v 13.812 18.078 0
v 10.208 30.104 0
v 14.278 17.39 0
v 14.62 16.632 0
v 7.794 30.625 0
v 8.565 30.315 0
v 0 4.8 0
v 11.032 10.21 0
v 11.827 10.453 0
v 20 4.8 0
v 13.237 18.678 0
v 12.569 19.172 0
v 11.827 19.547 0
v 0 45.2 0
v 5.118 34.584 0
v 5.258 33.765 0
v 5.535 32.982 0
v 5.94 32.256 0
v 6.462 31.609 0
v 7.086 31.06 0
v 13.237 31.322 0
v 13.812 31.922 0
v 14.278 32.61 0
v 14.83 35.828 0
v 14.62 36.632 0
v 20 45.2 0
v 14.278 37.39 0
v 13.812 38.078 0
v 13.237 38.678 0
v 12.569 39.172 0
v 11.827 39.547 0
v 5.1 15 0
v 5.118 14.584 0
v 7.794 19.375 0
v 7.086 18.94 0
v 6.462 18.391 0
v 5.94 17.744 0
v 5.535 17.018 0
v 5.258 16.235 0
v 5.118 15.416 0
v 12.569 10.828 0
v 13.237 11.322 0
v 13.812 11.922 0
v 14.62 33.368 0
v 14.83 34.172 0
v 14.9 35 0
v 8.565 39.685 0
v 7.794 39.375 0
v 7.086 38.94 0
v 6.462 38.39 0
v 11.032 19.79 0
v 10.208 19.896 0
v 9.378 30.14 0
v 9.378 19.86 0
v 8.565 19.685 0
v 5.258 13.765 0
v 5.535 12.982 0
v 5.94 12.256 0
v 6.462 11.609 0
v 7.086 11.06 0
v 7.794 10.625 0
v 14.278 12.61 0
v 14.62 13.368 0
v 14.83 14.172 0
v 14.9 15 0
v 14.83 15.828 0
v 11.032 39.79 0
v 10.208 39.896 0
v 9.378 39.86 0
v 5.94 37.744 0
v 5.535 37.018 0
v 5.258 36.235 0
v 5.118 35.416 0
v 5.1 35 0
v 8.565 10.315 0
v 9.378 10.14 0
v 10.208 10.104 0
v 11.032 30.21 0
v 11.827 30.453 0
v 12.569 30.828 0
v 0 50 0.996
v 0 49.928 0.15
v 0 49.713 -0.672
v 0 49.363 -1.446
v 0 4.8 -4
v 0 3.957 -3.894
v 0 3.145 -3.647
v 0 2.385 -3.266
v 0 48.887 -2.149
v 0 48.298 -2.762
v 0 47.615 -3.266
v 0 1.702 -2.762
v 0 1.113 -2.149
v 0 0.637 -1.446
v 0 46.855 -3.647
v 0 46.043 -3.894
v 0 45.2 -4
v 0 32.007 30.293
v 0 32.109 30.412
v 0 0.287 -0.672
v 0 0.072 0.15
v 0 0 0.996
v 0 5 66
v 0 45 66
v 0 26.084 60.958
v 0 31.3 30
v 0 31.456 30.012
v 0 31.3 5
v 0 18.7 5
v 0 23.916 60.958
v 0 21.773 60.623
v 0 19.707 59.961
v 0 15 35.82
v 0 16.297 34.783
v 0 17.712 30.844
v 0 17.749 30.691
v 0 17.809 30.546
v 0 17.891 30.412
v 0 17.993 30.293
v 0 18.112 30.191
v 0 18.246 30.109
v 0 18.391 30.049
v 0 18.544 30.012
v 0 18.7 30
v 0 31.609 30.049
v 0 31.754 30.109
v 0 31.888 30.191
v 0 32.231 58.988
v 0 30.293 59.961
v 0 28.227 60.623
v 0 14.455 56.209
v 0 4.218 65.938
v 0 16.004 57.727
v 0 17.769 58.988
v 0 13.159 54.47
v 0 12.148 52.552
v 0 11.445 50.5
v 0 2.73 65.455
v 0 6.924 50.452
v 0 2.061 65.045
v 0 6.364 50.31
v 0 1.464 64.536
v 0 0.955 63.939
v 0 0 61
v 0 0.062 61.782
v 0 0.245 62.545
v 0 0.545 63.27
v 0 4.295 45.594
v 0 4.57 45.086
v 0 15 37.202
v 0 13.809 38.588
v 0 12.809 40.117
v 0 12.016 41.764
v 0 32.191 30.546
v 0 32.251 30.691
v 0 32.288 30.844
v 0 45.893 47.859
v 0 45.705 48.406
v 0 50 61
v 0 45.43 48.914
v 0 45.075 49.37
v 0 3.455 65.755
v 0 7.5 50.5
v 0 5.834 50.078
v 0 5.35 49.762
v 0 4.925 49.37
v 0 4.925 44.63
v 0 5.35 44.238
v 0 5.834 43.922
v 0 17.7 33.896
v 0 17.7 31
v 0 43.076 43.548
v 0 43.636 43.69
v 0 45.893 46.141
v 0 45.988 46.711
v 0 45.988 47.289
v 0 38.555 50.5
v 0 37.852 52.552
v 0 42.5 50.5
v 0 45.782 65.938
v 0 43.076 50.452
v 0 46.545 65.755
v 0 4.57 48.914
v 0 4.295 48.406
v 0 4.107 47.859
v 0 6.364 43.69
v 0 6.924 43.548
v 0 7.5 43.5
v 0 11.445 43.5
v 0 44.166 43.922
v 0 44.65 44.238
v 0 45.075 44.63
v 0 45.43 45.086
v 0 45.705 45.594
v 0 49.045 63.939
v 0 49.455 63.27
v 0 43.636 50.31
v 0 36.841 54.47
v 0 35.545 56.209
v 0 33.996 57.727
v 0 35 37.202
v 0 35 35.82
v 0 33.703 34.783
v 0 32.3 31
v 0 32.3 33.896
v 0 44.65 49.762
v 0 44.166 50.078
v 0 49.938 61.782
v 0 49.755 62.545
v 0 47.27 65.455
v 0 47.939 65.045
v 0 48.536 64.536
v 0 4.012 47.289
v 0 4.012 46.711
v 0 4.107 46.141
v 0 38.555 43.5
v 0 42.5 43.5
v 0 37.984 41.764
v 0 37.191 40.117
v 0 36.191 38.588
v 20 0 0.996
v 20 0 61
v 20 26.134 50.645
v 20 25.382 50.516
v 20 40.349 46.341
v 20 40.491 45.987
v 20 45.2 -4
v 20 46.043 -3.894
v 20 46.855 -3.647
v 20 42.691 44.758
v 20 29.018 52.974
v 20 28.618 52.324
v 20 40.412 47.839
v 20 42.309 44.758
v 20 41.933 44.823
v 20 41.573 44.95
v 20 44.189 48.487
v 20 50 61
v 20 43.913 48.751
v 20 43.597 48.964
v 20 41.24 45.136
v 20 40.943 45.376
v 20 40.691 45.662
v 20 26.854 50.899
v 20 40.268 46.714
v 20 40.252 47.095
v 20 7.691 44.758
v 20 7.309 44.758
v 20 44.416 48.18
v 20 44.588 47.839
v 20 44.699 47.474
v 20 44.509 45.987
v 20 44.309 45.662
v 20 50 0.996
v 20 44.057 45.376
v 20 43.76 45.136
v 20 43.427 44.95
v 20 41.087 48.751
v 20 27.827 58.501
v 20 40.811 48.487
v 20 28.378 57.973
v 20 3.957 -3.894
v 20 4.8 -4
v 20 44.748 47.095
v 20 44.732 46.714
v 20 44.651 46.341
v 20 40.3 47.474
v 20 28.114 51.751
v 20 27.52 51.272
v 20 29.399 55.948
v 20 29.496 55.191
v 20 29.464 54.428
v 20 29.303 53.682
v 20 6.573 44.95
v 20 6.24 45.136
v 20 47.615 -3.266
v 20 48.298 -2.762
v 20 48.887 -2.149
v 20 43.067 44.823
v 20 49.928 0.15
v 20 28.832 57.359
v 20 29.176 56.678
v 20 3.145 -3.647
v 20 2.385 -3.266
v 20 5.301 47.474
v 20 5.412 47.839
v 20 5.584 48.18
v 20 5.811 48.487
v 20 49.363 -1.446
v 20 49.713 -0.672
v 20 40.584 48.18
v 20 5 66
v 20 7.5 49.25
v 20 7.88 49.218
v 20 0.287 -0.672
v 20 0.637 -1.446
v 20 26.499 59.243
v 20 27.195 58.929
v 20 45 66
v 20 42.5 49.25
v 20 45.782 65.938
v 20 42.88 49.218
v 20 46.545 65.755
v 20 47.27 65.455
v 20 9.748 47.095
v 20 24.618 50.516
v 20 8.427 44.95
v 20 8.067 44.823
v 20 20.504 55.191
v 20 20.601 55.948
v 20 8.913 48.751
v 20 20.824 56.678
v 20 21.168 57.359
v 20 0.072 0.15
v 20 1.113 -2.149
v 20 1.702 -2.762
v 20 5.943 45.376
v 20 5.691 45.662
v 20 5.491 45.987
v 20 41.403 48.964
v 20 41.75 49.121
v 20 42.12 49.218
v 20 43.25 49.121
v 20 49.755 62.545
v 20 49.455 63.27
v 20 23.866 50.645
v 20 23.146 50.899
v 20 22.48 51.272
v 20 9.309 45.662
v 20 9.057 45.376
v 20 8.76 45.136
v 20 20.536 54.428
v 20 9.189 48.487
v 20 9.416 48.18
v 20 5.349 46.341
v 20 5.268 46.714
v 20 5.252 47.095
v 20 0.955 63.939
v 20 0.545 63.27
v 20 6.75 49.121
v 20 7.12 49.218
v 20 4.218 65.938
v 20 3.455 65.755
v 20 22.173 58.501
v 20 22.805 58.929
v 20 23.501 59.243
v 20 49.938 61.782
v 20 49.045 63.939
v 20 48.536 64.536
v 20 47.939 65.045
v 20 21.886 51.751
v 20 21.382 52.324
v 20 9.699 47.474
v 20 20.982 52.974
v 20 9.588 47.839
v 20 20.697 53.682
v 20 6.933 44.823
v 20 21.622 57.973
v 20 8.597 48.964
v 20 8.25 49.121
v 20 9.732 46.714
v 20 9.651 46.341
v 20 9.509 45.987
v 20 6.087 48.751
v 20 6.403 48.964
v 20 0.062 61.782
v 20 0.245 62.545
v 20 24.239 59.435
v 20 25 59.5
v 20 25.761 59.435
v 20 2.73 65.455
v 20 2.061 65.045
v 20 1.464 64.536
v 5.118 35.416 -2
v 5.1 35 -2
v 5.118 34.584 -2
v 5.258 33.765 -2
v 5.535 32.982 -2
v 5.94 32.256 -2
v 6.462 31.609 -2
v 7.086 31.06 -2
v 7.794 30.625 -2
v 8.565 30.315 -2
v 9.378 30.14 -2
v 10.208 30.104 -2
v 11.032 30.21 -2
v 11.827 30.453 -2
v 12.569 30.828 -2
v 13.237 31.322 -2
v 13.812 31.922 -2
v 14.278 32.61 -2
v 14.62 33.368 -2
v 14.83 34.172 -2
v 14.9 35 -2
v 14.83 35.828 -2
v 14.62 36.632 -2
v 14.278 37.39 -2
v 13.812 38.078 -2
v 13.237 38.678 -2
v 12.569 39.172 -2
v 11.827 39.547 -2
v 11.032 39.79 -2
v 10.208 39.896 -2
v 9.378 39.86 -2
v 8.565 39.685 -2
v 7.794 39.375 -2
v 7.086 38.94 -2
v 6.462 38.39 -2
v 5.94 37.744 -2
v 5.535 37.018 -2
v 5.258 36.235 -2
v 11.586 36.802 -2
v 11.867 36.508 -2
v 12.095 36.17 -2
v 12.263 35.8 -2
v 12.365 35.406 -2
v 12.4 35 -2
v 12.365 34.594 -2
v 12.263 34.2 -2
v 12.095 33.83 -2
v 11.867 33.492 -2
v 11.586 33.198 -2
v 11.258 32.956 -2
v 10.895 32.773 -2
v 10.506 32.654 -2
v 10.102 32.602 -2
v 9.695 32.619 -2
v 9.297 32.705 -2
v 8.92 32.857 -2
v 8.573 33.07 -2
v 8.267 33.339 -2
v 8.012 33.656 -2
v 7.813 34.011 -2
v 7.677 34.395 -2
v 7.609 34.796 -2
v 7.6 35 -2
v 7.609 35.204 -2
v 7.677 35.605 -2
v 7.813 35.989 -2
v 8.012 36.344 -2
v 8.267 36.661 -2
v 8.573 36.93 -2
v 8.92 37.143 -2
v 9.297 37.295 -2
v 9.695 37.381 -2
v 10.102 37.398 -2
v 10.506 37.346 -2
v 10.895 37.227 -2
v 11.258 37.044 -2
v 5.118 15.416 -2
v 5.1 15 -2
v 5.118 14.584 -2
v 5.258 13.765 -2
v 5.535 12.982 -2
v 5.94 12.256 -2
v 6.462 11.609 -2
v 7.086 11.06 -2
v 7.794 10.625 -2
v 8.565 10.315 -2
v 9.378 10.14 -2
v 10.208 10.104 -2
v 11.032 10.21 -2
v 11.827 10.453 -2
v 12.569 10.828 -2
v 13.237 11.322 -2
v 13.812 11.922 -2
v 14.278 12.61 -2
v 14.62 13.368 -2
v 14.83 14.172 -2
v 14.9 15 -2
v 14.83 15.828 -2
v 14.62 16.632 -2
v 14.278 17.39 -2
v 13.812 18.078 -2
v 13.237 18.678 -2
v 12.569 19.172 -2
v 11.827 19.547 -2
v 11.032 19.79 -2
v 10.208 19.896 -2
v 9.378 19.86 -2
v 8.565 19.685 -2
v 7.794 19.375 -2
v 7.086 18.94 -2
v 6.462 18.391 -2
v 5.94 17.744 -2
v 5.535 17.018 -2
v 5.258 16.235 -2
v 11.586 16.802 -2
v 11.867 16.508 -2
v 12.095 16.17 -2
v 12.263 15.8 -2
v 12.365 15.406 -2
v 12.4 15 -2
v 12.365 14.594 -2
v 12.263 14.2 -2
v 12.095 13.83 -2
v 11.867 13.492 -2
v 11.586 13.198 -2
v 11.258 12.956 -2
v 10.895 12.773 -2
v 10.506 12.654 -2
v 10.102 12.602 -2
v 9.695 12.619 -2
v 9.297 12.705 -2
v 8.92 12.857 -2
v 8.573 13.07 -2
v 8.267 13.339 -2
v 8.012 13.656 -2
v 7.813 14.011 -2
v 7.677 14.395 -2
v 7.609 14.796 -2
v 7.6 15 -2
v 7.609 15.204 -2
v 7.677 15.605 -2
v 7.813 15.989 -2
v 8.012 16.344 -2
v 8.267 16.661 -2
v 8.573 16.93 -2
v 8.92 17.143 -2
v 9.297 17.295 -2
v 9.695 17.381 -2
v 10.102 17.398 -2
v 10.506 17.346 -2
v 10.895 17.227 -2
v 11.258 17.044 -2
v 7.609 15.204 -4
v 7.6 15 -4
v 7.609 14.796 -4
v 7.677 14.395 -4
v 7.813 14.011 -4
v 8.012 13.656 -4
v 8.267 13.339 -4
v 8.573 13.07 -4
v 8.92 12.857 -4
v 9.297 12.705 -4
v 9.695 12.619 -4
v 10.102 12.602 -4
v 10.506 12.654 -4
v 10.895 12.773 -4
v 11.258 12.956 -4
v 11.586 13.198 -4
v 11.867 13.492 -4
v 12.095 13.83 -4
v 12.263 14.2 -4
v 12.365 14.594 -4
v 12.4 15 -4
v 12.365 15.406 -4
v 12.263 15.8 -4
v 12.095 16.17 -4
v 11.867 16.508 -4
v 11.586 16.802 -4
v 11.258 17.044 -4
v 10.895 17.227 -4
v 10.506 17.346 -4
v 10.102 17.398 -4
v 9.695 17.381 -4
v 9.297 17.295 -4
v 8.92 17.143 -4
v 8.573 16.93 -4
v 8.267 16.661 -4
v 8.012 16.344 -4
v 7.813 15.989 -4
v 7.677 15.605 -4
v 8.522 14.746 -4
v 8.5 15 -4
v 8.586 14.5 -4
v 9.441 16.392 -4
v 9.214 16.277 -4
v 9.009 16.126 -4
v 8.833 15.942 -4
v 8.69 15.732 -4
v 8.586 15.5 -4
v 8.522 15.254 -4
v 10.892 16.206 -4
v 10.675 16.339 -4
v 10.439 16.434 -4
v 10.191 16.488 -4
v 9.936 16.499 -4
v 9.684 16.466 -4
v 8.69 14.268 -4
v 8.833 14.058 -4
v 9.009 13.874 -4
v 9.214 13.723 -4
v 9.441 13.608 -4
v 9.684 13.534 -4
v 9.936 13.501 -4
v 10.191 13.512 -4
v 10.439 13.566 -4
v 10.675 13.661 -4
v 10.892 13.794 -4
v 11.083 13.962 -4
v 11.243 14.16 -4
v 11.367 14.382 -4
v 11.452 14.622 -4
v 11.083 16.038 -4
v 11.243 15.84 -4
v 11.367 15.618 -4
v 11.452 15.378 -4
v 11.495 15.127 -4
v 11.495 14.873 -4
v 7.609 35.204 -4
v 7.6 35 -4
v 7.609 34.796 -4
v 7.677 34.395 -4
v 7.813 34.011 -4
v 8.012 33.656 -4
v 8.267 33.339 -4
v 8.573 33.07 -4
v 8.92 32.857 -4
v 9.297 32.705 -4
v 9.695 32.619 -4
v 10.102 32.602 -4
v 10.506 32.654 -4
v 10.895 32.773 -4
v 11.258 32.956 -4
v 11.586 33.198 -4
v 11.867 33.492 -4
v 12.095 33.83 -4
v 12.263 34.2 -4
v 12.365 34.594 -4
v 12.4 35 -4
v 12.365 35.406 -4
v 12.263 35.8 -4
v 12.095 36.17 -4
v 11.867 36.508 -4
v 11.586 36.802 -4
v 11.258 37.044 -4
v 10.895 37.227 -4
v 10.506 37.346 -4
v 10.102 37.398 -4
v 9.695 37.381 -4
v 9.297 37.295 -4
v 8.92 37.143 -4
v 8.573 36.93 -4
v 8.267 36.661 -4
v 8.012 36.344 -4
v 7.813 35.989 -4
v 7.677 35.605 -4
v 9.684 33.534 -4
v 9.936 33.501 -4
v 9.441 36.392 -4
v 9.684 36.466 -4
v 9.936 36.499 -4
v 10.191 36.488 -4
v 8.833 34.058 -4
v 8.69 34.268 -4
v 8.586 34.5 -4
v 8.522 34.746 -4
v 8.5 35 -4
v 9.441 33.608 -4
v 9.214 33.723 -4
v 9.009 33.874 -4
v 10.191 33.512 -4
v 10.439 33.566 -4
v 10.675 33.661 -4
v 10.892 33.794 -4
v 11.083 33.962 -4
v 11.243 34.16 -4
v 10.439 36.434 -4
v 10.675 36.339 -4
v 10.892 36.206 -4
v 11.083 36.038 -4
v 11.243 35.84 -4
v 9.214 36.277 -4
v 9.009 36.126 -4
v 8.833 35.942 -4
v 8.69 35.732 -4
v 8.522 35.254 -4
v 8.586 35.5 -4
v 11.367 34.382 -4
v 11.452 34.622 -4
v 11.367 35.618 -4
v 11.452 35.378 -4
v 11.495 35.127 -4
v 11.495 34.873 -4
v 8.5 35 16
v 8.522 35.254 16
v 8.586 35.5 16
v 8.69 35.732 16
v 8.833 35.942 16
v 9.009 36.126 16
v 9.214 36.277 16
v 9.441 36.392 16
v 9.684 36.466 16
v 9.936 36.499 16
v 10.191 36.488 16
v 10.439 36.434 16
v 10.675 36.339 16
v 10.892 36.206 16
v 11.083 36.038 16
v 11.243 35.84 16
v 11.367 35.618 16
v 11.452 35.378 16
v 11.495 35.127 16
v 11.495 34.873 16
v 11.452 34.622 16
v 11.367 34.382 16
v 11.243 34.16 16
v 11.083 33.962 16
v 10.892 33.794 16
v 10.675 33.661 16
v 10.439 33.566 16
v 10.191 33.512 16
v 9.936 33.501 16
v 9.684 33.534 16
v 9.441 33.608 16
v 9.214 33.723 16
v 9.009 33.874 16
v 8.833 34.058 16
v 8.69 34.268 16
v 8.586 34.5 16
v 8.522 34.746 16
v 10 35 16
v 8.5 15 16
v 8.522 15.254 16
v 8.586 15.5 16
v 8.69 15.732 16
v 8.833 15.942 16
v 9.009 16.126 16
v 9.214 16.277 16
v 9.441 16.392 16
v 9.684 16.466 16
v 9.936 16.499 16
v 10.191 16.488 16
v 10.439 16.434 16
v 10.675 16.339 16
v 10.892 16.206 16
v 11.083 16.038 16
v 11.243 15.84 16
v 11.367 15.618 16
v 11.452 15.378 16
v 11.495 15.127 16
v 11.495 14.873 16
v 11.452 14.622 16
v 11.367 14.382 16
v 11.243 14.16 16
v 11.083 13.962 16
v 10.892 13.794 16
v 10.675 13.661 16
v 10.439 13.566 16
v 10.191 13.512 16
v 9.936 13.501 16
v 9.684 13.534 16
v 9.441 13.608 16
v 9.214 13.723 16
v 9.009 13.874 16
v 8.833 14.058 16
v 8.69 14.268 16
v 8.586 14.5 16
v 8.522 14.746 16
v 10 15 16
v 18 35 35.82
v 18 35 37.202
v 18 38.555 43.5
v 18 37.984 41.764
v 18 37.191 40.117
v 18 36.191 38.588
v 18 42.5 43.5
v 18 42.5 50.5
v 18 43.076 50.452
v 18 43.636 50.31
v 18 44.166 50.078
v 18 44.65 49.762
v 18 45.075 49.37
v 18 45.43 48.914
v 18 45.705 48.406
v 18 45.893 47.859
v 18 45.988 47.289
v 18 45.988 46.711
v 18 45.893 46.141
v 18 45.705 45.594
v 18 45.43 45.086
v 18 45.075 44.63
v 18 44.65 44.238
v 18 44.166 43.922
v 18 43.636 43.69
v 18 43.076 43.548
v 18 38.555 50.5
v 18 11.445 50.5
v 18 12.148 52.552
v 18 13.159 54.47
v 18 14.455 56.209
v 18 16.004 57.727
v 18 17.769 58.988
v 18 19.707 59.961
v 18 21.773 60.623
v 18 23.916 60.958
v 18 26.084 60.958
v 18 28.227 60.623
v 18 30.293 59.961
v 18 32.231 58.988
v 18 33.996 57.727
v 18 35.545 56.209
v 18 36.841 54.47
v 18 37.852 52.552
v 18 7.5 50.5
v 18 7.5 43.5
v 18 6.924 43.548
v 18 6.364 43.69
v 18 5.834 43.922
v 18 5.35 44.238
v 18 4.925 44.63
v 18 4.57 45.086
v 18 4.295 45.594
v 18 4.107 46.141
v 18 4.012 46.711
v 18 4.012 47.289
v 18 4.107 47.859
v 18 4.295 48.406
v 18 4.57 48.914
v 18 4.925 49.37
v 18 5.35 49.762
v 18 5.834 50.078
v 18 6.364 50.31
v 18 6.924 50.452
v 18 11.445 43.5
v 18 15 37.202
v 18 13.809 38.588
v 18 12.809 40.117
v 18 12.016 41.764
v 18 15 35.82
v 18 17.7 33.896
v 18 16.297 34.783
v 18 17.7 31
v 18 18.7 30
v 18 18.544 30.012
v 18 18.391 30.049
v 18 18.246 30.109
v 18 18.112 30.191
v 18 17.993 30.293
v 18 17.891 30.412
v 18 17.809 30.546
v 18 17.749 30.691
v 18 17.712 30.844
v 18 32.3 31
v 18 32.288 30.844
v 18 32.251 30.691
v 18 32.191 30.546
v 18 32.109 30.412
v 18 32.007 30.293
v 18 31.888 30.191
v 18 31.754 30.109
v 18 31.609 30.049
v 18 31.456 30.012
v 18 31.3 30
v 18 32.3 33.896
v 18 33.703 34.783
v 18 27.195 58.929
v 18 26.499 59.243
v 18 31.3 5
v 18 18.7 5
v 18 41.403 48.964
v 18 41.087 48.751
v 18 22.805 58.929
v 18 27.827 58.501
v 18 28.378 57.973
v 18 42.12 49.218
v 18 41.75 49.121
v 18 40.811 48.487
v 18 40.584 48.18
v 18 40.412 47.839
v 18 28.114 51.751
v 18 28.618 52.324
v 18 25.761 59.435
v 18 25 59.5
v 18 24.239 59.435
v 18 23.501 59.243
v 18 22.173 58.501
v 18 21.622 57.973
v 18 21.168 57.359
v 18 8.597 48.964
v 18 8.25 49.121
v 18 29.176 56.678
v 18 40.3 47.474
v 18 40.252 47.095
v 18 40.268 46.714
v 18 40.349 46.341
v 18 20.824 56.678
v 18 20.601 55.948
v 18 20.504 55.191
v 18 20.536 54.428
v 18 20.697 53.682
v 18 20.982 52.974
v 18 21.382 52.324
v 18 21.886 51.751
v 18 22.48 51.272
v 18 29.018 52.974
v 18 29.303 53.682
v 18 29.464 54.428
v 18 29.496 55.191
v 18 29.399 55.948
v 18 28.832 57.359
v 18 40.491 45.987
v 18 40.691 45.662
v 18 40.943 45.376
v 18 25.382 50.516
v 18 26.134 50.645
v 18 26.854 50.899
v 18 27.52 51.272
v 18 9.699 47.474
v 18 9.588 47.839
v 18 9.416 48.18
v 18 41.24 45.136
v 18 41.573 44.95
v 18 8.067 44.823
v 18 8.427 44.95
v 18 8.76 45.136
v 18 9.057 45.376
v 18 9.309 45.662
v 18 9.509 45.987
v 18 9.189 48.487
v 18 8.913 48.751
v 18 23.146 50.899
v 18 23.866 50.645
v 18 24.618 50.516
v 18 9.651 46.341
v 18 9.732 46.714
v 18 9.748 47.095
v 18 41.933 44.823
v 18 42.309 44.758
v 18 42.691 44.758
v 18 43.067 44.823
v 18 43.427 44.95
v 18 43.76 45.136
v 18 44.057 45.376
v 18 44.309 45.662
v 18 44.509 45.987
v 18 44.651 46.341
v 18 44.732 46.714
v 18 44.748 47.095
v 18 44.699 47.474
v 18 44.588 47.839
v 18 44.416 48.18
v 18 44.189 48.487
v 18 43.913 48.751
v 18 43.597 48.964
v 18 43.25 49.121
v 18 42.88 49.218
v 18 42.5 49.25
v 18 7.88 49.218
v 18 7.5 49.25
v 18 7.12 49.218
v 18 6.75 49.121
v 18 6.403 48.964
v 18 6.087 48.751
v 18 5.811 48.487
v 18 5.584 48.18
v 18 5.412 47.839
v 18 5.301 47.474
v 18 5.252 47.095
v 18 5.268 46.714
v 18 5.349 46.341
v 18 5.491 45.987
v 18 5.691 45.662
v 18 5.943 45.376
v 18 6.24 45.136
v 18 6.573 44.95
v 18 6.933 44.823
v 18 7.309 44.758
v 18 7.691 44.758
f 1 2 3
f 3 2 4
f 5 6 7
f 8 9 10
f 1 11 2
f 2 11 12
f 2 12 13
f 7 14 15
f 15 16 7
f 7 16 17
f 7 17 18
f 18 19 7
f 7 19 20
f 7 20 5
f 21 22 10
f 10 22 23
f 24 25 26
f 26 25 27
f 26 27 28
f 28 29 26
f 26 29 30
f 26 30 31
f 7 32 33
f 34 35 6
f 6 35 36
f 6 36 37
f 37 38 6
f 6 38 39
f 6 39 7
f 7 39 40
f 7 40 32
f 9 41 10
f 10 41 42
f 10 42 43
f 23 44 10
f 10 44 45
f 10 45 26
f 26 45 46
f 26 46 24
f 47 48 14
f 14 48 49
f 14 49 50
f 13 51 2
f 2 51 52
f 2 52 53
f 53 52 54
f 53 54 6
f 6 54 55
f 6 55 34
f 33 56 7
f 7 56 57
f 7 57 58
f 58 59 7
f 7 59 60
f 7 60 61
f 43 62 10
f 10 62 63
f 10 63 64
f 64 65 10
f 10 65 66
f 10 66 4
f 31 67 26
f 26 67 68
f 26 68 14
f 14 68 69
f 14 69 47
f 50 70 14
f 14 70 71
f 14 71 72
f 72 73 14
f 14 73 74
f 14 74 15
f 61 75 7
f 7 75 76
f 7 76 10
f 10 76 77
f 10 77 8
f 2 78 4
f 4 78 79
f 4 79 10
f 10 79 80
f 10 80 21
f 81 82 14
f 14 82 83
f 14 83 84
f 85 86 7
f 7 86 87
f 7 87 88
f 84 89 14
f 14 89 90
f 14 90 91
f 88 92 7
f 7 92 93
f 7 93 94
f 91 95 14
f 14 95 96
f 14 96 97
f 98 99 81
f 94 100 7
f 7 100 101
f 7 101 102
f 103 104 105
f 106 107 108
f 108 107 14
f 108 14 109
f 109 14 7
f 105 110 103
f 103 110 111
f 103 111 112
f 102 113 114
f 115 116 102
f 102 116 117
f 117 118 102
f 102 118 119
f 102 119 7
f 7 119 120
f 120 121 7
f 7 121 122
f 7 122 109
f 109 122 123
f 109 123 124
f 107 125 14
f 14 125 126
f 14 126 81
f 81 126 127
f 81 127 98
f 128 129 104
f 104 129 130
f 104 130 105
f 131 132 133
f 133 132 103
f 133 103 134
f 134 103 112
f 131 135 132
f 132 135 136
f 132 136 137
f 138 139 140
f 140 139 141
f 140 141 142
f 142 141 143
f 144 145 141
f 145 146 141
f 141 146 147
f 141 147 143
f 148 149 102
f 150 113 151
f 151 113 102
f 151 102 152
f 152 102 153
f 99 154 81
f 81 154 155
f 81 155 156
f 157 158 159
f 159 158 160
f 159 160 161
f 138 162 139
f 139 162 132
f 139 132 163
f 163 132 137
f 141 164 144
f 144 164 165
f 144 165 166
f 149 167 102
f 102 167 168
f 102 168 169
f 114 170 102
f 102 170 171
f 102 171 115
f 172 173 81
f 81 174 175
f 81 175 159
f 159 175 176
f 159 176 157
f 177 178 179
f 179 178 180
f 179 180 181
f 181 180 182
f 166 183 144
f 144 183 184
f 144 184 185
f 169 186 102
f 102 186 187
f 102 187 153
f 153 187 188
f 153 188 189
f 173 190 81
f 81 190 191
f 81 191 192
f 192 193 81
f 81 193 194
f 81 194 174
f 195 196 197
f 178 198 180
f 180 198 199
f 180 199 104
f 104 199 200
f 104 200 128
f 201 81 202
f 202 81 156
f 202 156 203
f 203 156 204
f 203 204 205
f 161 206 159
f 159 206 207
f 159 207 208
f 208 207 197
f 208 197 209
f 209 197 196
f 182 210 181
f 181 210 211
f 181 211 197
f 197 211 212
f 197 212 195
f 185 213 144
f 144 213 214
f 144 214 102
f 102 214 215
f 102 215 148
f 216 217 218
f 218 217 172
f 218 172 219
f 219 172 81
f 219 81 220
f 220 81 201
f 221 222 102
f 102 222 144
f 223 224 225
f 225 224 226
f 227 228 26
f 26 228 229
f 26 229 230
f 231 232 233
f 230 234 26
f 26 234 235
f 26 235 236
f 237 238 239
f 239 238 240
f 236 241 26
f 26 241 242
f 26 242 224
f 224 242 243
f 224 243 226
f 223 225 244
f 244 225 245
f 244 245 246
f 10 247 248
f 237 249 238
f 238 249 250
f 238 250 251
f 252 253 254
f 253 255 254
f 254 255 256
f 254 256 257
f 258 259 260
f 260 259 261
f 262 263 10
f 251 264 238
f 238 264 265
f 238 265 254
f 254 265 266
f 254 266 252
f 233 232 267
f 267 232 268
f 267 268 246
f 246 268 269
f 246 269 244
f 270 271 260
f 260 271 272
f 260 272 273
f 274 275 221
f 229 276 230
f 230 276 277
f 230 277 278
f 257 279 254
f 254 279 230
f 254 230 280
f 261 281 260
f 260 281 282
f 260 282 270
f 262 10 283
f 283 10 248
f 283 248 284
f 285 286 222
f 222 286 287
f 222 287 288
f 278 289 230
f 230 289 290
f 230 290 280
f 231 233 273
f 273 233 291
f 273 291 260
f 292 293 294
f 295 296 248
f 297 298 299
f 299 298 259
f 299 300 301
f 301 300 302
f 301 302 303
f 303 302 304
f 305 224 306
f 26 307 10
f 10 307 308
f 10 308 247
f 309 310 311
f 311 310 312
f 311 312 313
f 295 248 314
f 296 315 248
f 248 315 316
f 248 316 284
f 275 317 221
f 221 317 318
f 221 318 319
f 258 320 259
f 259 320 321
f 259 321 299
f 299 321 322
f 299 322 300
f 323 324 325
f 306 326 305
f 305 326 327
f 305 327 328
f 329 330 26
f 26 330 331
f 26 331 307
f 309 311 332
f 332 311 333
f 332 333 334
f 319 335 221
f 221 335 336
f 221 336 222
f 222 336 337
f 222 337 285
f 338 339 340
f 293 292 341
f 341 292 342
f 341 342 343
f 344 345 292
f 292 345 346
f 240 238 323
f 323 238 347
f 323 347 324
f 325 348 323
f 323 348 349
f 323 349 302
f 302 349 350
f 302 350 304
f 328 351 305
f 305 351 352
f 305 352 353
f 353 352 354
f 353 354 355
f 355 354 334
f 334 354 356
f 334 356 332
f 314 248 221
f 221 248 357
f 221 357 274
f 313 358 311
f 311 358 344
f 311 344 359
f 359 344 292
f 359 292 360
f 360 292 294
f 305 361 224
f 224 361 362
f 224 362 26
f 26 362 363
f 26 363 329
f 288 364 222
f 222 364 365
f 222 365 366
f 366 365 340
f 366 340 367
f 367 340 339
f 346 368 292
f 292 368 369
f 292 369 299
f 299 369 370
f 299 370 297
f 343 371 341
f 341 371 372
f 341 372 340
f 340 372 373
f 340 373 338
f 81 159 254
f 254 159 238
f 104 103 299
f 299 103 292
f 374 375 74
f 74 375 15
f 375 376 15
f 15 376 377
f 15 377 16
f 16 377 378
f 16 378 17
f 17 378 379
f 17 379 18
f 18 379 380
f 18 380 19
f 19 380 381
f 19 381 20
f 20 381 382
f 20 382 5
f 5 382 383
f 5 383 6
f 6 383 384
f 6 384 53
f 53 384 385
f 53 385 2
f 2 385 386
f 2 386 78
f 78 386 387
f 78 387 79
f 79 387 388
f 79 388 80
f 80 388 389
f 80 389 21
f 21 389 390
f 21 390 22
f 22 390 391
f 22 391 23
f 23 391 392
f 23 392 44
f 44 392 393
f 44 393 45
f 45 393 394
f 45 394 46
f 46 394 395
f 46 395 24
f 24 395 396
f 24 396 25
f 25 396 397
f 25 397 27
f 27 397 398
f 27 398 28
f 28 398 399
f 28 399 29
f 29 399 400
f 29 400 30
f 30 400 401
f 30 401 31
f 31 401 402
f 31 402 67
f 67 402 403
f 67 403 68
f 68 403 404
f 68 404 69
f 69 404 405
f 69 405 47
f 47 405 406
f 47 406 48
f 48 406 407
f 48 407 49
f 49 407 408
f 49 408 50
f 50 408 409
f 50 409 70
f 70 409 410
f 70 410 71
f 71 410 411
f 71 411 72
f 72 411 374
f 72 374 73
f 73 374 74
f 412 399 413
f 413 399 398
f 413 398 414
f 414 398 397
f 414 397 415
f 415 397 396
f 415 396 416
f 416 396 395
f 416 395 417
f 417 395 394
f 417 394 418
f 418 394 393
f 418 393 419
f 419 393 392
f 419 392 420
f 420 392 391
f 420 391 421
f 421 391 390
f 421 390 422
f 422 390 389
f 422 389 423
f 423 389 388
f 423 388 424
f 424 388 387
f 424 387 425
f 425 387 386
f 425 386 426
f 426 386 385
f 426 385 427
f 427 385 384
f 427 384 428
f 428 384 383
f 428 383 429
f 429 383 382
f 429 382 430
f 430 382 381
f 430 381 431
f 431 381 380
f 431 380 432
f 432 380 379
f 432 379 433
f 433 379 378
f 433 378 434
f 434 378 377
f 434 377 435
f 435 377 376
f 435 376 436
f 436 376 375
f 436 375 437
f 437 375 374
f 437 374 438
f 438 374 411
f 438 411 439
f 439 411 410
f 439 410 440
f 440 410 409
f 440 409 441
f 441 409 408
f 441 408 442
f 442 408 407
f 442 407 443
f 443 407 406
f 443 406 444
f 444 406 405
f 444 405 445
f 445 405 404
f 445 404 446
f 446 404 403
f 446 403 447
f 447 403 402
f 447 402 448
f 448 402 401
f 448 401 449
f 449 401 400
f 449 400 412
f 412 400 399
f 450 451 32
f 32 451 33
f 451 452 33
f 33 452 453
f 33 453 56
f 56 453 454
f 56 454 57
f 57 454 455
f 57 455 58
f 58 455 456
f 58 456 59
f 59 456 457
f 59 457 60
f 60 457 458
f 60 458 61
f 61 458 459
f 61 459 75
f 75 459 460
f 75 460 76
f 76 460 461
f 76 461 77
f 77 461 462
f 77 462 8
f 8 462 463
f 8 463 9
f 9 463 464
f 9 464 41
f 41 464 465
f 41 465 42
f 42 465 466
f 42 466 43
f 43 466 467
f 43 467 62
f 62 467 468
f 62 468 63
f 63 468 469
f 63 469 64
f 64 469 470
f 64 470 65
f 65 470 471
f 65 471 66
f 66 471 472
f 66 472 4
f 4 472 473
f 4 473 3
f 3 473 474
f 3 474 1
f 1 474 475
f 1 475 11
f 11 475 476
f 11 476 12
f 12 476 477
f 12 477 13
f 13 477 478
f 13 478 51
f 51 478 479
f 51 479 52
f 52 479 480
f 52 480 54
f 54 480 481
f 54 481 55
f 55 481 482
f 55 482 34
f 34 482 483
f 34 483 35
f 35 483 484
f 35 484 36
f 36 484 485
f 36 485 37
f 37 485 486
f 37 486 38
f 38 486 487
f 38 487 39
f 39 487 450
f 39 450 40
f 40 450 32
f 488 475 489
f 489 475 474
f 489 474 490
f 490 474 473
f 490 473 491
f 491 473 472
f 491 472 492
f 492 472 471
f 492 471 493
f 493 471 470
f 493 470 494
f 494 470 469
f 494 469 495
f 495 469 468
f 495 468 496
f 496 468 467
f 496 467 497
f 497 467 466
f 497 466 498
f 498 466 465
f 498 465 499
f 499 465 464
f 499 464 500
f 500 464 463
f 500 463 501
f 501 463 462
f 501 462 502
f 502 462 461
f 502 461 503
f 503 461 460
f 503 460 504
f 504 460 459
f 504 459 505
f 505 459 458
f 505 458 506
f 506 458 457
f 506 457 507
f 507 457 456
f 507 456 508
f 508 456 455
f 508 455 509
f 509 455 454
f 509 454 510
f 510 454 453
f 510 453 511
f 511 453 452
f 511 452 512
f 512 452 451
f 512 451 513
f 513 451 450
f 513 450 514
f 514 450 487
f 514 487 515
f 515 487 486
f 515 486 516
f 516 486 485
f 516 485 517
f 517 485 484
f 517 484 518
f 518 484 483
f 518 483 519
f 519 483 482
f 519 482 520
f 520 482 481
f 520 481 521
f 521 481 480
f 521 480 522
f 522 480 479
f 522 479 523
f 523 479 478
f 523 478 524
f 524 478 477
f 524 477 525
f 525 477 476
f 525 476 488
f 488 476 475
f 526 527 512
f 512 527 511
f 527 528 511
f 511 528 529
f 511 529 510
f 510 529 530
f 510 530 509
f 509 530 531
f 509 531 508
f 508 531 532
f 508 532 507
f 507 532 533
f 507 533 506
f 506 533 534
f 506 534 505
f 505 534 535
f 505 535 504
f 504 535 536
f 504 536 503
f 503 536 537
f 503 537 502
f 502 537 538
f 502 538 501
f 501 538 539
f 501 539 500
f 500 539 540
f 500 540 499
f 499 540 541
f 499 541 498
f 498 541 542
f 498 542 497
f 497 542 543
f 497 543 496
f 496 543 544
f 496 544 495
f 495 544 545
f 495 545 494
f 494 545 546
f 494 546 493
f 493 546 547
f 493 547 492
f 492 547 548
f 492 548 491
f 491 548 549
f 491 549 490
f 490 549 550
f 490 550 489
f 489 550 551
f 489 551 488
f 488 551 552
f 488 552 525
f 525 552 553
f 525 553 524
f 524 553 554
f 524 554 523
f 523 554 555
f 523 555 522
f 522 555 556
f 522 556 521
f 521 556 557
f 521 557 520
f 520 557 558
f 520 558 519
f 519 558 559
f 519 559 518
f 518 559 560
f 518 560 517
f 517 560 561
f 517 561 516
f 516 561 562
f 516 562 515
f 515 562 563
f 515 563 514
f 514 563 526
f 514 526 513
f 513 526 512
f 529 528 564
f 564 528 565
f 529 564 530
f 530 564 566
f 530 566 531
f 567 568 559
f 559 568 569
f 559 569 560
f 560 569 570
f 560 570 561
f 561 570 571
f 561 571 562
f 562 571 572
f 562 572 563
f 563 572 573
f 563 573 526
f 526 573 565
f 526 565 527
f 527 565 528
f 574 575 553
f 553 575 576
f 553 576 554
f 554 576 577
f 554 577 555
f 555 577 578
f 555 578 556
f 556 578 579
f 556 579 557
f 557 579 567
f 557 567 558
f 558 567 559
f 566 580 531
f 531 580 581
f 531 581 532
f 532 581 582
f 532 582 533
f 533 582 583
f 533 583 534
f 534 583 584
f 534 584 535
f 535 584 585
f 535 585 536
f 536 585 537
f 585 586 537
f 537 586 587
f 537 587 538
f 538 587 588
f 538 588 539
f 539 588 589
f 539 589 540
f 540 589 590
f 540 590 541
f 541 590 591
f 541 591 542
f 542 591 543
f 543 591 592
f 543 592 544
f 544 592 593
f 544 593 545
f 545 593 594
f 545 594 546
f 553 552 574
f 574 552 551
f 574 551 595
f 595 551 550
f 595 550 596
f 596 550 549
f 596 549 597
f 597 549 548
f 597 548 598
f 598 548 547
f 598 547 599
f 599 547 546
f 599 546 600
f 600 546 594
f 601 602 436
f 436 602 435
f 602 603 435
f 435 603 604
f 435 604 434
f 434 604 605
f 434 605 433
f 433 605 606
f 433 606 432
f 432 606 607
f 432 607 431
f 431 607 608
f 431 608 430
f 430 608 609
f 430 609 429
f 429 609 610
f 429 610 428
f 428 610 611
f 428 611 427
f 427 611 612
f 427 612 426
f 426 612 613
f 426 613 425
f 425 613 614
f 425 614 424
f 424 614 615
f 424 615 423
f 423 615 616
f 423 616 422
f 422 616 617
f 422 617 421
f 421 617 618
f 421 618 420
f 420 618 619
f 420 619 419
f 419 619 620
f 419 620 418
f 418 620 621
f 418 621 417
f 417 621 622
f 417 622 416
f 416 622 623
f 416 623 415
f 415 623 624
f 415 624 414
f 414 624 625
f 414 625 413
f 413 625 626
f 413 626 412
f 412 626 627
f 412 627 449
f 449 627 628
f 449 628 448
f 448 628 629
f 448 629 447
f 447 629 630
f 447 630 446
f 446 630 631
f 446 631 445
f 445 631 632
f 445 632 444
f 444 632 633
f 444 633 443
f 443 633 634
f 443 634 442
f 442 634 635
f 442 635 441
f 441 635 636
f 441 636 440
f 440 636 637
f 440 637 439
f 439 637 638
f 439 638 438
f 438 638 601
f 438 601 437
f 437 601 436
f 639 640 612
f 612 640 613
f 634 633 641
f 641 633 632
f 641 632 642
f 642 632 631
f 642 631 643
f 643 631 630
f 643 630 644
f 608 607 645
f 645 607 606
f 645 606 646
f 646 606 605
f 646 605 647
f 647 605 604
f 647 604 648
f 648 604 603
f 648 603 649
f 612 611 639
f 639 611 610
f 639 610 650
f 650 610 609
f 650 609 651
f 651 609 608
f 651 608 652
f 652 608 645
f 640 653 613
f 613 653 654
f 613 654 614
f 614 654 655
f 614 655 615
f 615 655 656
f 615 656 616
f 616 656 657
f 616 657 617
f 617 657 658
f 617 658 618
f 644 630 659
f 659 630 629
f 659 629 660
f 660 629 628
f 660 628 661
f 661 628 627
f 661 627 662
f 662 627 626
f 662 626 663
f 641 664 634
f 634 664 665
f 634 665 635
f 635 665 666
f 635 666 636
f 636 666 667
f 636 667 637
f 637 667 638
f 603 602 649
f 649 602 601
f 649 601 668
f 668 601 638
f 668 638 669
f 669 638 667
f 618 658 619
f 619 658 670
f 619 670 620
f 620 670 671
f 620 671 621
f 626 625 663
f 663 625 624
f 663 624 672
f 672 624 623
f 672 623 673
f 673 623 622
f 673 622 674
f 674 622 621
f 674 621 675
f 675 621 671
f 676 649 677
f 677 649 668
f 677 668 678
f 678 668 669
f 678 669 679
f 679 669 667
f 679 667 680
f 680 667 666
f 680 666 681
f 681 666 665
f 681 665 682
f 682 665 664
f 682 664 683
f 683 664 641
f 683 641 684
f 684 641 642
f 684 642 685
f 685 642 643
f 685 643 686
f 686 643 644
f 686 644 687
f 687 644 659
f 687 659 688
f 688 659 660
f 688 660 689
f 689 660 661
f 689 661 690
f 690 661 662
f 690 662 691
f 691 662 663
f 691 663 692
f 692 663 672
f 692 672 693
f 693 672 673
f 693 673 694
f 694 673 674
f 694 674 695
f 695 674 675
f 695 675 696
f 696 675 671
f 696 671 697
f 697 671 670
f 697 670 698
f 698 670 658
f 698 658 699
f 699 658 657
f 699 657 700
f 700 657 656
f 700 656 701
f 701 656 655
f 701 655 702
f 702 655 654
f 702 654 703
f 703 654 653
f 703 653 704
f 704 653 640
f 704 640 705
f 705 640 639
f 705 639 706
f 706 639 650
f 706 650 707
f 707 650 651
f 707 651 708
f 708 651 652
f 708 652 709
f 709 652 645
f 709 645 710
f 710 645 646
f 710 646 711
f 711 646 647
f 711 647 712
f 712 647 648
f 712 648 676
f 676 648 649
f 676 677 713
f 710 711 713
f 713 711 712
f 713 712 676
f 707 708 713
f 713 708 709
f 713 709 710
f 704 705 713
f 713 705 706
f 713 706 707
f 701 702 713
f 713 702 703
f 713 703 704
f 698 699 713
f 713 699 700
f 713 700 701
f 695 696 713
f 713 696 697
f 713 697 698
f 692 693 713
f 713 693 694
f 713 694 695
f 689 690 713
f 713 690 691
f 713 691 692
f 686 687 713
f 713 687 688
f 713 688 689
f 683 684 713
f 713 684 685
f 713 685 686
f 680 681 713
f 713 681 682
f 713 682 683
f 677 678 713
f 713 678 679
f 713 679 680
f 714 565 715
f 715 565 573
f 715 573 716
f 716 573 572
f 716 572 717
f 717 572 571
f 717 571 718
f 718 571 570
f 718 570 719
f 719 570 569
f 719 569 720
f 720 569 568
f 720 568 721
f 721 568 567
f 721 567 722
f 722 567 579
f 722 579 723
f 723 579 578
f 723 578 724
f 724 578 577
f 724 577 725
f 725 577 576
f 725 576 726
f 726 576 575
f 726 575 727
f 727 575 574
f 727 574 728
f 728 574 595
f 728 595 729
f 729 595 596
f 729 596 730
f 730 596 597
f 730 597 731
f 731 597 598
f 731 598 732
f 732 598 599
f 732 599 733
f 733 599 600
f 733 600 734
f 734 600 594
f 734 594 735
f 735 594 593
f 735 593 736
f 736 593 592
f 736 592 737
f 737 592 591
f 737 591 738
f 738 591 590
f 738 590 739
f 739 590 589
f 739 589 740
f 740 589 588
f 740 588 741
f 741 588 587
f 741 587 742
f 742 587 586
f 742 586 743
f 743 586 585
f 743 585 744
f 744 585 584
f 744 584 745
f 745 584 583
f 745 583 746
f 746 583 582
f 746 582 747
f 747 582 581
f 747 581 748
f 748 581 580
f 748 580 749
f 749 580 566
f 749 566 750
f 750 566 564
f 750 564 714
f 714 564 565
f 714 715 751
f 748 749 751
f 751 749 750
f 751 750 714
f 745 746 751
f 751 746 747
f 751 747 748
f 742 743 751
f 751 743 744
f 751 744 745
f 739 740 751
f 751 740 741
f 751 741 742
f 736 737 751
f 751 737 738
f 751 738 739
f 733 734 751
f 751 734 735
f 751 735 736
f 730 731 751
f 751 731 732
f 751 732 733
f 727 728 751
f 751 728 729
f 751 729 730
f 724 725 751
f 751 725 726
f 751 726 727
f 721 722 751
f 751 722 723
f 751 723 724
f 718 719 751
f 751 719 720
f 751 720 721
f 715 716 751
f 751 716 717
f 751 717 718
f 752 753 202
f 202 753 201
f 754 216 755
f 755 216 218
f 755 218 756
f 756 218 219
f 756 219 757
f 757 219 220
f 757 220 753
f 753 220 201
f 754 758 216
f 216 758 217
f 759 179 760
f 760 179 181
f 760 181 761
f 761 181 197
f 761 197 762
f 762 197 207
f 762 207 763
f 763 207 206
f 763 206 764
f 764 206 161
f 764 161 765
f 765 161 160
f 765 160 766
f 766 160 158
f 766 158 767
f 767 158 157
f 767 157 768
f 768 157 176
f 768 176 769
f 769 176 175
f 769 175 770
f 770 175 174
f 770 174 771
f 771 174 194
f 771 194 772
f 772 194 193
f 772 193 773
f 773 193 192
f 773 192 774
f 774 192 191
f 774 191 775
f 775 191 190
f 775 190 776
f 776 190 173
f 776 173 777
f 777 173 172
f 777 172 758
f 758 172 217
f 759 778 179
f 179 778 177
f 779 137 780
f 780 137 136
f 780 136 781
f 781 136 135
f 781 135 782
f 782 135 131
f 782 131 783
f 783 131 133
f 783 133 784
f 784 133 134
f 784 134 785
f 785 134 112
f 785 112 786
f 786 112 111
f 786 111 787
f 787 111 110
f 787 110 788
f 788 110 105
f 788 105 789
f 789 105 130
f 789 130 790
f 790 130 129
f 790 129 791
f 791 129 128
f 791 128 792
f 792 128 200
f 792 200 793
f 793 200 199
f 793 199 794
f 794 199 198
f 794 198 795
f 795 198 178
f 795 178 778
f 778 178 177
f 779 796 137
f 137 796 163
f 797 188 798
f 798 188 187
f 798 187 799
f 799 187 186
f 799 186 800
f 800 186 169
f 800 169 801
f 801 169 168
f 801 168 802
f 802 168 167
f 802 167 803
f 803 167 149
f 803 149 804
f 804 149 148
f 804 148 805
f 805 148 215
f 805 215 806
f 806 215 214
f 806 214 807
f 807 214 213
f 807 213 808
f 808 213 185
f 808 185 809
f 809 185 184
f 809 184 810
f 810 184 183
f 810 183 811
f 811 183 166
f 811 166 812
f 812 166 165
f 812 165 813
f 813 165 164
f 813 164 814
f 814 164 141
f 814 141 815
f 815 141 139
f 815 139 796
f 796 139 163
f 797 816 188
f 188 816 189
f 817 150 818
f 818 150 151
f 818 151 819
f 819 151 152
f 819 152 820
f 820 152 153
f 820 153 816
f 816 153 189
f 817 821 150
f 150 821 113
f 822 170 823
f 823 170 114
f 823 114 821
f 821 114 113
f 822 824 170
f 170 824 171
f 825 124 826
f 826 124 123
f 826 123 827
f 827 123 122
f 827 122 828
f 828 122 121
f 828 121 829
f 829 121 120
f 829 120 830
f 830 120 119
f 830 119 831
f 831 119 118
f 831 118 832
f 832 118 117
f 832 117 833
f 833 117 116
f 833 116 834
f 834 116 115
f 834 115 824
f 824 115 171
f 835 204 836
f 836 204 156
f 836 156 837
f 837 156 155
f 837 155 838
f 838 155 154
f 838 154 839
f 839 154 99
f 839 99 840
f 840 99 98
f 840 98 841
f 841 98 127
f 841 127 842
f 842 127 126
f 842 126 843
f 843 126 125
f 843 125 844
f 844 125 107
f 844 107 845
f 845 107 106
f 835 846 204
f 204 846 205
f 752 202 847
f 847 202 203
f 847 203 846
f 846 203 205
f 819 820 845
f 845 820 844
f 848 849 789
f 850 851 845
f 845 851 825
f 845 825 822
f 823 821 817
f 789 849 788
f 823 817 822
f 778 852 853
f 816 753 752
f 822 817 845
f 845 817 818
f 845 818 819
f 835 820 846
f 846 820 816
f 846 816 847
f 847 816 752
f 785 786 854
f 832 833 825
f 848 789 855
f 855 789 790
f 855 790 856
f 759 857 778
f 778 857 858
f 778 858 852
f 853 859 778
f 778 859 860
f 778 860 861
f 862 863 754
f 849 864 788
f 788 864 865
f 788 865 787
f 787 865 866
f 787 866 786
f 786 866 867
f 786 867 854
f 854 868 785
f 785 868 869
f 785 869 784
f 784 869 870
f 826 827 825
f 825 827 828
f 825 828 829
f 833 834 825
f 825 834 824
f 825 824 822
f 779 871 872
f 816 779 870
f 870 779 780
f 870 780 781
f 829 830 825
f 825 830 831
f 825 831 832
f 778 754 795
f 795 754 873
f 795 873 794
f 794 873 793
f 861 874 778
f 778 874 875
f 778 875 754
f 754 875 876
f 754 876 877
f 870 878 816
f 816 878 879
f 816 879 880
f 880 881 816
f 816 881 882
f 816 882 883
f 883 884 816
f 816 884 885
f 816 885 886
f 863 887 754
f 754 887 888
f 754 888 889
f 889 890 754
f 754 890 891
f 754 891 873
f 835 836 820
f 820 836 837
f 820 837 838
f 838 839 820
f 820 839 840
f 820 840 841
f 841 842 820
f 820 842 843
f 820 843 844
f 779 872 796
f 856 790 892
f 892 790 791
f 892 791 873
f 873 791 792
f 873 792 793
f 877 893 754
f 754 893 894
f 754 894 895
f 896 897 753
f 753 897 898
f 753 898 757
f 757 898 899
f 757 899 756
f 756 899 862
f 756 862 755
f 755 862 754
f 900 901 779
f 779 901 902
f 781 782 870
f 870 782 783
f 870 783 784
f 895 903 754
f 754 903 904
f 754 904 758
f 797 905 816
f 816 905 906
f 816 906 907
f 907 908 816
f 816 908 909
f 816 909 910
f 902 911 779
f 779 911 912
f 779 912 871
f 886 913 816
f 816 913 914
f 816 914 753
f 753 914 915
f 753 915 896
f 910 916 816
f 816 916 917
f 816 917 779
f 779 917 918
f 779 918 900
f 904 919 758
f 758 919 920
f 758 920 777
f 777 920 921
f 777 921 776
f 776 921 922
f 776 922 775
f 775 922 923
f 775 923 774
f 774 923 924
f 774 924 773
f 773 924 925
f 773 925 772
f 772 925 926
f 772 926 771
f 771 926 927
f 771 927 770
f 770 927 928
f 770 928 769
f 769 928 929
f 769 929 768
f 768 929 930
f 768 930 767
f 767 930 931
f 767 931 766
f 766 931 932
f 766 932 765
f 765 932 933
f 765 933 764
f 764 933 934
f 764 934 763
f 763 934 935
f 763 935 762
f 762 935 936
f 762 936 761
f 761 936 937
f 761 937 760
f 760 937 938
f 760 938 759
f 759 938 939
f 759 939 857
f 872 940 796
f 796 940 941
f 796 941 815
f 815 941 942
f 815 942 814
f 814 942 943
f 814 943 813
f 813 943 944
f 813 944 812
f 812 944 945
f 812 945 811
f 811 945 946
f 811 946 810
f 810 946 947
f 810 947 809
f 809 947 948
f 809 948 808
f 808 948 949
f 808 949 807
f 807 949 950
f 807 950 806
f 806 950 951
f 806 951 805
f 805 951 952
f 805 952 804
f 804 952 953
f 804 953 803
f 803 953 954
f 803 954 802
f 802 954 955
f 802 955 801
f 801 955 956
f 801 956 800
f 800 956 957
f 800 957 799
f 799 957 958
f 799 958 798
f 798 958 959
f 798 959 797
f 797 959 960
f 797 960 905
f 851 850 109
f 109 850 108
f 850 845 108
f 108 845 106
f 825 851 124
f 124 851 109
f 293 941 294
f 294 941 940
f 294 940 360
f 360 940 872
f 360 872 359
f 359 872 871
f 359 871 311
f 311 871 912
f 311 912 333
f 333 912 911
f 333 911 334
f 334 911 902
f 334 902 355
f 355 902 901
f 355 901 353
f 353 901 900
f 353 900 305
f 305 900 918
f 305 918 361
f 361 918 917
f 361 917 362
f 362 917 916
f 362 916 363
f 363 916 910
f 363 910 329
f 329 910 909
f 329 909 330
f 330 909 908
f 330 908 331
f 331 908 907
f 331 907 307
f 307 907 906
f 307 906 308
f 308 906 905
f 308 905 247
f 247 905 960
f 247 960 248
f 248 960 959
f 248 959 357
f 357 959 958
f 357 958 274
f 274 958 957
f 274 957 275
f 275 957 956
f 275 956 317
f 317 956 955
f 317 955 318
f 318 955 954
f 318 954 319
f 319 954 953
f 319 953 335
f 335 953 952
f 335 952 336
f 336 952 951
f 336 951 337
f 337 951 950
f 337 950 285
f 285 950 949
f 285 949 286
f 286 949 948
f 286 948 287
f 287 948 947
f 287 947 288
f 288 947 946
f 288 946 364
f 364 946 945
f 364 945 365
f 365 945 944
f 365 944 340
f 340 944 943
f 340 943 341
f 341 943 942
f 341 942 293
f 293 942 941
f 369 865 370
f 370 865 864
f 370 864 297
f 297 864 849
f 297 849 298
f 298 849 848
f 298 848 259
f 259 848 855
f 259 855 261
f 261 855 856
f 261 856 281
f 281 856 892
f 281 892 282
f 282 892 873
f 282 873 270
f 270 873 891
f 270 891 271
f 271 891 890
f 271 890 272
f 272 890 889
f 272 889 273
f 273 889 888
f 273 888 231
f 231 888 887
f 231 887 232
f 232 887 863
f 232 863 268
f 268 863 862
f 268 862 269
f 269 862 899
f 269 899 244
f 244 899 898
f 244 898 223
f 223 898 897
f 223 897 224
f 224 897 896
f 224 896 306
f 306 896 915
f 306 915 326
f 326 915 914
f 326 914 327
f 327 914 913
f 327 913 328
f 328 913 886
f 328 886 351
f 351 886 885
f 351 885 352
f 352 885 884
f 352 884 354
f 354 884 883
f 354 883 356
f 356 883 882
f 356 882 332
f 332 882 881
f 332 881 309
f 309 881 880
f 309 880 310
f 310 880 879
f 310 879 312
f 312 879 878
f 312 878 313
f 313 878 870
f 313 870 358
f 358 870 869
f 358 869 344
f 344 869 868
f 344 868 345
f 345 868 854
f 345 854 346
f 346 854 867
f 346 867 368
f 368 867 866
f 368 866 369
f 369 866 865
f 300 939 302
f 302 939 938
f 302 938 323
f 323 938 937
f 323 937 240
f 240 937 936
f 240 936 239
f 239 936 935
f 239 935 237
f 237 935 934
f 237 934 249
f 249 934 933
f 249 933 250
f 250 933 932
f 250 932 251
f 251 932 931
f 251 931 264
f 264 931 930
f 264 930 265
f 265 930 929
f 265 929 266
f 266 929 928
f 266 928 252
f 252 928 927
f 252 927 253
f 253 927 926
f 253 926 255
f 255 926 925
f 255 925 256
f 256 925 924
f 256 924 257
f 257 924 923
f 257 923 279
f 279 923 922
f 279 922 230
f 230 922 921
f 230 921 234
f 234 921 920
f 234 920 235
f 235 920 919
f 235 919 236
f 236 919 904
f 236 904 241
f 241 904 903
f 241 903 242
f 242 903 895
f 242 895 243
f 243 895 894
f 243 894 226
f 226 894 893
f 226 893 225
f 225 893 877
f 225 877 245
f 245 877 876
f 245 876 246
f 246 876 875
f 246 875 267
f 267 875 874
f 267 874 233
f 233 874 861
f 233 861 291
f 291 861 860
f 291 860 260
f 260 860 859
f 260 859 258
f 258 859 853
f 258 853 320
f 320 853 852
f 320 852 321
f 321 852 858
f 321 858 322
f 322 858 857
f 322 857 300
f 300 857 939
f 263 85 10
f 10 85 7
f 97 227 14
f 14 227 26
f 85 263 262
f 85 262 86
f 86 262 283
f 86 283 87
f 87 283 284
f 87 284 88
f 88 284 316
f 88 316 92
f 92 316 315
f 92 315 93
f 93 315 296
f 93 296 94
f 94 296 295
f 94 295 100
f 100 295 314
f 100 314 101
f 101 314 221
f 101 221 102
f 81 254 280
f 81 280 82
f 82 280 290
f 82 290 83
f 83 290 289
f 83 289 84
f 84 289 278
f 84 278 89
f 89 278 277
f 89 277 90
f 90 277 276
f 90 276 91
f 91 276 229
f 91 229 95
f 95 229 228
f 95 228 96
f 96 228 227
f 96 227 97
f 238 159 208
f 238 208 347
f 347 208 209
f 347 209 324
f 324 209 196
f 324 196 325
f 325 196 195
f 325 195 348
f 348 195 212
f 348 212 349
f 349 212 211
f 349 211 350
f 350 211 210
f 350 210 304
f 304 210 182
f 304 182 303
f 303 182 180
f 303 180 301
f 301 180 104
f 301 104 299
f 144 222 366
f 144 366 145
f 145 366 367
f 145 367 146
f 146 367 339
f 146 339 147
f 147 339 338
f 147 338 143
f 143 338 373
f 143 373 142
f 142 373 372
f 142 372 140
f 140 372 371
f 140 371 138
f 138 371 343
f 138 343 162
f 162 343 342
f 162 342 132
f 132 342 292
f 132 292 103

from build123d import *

# Parameters (mm, degrees)
SKETCH1_W           = 20
SKETCH1_H           = 50
BOSS_EXTRUDE1_DEPTH = 66
SKETCH2_R           = 4.9
BOSS_EXTRUDE2_DEPTH = 2
SKETCH3_R           = 2.4
BOSS_EXTRUDE3_DEPTH = 2
SKETCH4_R           = 1.5
CUT_EXTRUDE1_DEPTH  = 20
CUT_EXTRUDE2_START  = -18
CUT_EXTRUDE2_DEPTH  = 18
CUT_EXTRUDE3_REACH  = 86.735
SKETCH8_W           = 20
SKETCH8_H           = 4.8
BOSS_EXTRUDE4_DEPTH = 4
FILLET1_R           = 5


# Read off the part's stored shape, not the designer's step: Cut-Extrude2
with BuildPart() as part:
    # Sketch1 → Boss-Extrude1 (new body)
    with BuildSketch(Plane.XY):
        with Locations((10, 25)):
            Rectangle(SKETCH1_W, SKETCH1_H)
    extrude(amount=BOSS_EXTRUDE1_DEPTH)

    # Sketch2 → Boss-Extrude2 (add)
    with BuildSketch(Plane(origin=(0, 0, 0), x_dir=(-1, 0, 0), z_dir=(0, 0, -1))):
        with Locations((-10, 35)):
            Circle(SKETCH2_R)
        with Locations((-10, 15)):
            Circle(SKETCH2_R)
    extrude(amount=BOSS_EXTRUDE2_DEPTH)

    # Sketch3 → Boss-Extrude3 (add)
    with BuildSketch(Plane(origin=(0, 0, -2), x_dir=(-1, 0, 0), z_dir=(0, 0, -1))):
        with Locations((-10, 15)):
            Circle(SKETCH3_R)
        with Locations((-10, 35)):
            Circle(SKETCH3_R)
    extrude(amount=BOSS_EXTRUDE3_DEPTH)

    # Sketch4 → Cut-Extrude1 (cut)
    with BuildSketch(Plane(origin=(0, 0, -4), x_dir=(-1, 0, 0), z_dir=(0, 0, -1))):
        with Locations((-10, 15)):
            Circle(SKETCH4_R)
        with Locations((-10, 35)):
            Circle(SKETCH4_R)
    extrude(amount=-CUT_EXTRUDE1_DEPTH, mode=Mode.SUBTRACT)

    # Cut-Extrude2 outline → Cut-Extrude2 (cut)
    with BuildSketch(Plane.ZY.offset(CUT_EXTRUDE2_START)):
        with BuildLine():
            ThreePointArc((43.5, 38.555441712), (40.117469968, 37.191422409), (37.202041029, 35))
            Line((37.202041029, 35), (35.819660113, 35))
            ThreePointArc((35.819660113, 35), (34.783103517, 33.703300542), (33.896183762, 32.3))
            Line((33.896183762, 32.3), (31, 32.3))
            ThreePointArc((31, 32.3), (30.292893219, 32.007106781), (30, 31.3))
            Line((30, 31.3), (5, 31.3))
            Line((5, 31.3), (5, 18.7))
            Line((5, 18.7), (30, 18.7))
            ThreePointArc((30, 18.7), (30.292893219, 17.992893219), (31, 17.7))
            Line((31, 17.7), (33.896183762, 17.7))
            ThreePointArc((33.896183762, 17.7), (34.783103517, 16.296699458), (35.819660113, 15))
            Line((35.819660113, 15), (37.202041029, 15))
            ThreePointArc((37.202041029, 15), (40.117469968, 12.808577591), (43.5, 11.444558288))
            Line((43.5, 11.444558288), (43.5, 7.5))
            ThreePointArc((43.5, 7.5), (47, 4), (50.5, 7.5))
            Line((50.5, 7.5), (50.5, 11.444558288))
            ThreePointArc((50.5, 11.444558288), (61, 25), (50.5, 38.555441712))
            Line((50.5, 38.555441712), (50.5, 42.5))
            ThreePointArc((50.5, 42.5), (47, 46), (43.5, 42.5))
            Line((43.5, 42.5), (43.5, 38.555441712))
        make_face()
    extrude(amount=CUT_EXTRUDE2_DEPTH, mode=Mode.SUBTRACT)

    # Sketch7 → Cut-Extrude3 (cut, up to next)
    with BuildSketch(Plane.ZY.offset(-18), mode=Mode.PRIVATE) as cut_extrude3_sk1:
        with BuildLine():
            ThreePointArc((47, 40.25), (49.25, 42.5), (47, 44.75))
            ThreePointArc((47, 44.75), (44.75, 42.5), (47, 40.25))
        make_face()
    cut_extrude3_tool1 = extrude(cut_extrude3_sk1.sketch, amount=-CUT_EXTRUDE3_REACH, mode=Mode.PRIVATE) & part.part
    # Sketch7 → Cut-Extrude3 (cut, up to next)
    with BuildSketch(Plane.ZY.offset(-18), mode=Mode.PRIVATE) as cut_extrude3_sk2:
        with BuildLine():
            ThreePointArc((55, 20.5), (59.5, 25), (55, 29.5))
            ThreePointArc((55, 29.5), (50.5, 25), (55, 20.5))
        make_face()
    cut_extrude3_tool2 = extrude(cut_extrude3_sk2.sketch, amount=-CUT_EXTRUDE3_REACH, mode=Mode.PRIVATE) & part.part
    # Sketch7 → Cut-Extrude3 (cut, up to next)
    with BuildSketch(Plane.ZY.offset(-18), mode=Mode.PRIVATE) as cut_extrude3_sk3:
        with BuildLine():
            ThreePointArc((47, 5.25), (49.25, 7.5), (47, 9.75))
            ThreePointArc((47, 9.75), (44.75, 7.5), (47, 5.25))
        make_face()
    cut_extrude3_tool3 = extrude(cut_extrude3_sk3.sketch, amount=-CUT_EXTRUDE3_REACH, mode=Mode.PRIVATE) & part.part
    add(cut_extrude3_tool1.solids().sort_by_distance((18, 42.5, 47))[0], mode=Mode.SUBTRACT)
    add(cut_extrude3_tool2.solids().sort_by_distance((18, 25, 55))[0], mode=Mode.SUBTRACT)
    add(cut_extrude3_tool3.solids().sort_by_distance((18, 7.5, 47))[0], mode=Mode.SUBTRACT)

    # Sketch8 → Boss-Extrude4 (add)
    with BuildSketch(Plane(origin=(0, 0, 0), x_dir=(-1, 0, 0), z_dir=(0, 0, -1))):
        with Locations((-10, 2.4)):
            Rectangle(SKETCH8_W, SKETCH8_H)
        with Locations((-10, 47.6)):
            Rectangle(SKETCH8_W, SKETCH8_H)
    extrude(amount=BOSS_EXTRUDE4_DEPTH)

    # Fillet1
    # the kernel refuses this fillet: 5 mm, written as the material it takes off along each edge
    with BuildSketch(Plane(origin=(32.489995997, 0, -4), x_dir=(0, 0, 1), z_dir=(-1, 0, 0))) as fillet1_piece_1:
        with BuildLine():
            CenterArc((4.995998399, 5), FILLET1_R, 182.292442776, 87.707557224)
            Line((0, 4.8), (-0.099919968, 4.796))
            ThreePointArc((-0.099919968, 4.796), (-0.1, 2.4), (-0.1, 0))
            Line((-0.1, 0), (0, -0.1))
            Line((0, -0.1), (4.995998399, -0.1))
            Line((4.995998399, -0.1), (4.995998399, 0))
        make_face()
    extrude(amount=44.979991994, mode=Mode.SUBTRACT)
    with BuildSketch(Plane(origin=(32.489995997, 50, -4), x_dir=(0, -1, 0), z_dir=(-1, 0, 0))) as fillet1_piece_2:
        with BuildLine():
            CenterArc((5, 4.995998399), FILLET1_R, 180, 87.707557224)
            Line((0, 4.995998399), (-0.1, 4.995998399))
            Line((-0.1, 4.995998399), (-0.1, 0))
            Line((-0.1, 0), (0, -0.1))
            ThreePointArc((0, -0.1), (2.4, -0.1), (4.796, -0.099919968))
            Line((4.796, -0.099919968), (4.8, 0))
        make_face()
    extrude(amount=44.979991994, mode=Mode.SUBTRACT)
    with BuildSketch(Plane(origin=(32.5, 50, 66), x_dir=(0, 0, -1), z_dir=(-1, 0, 0)), Plane(origin=(-12.5, 0, 66), x_dir=(0, 0, -1), z_dir=(1, 0, 0))) as fillet1_piece_3:
        with BuildLine():
            CenterArc((FILLET1_R, FILLET1_R), FILLET1_R, 180, 90)
            Line((0, FILLET1_R), (-FILLET1_R * 0.02, FILLET1_R))
            Line((-FILLET1_R * 0.02, FILLET1_R), (-FILLET1_R * 0.02, -FILLET1_R * 0.02))
            Line((-FILLET1_R * 0.02, -FILLET1_R * 0.02), (FILLET1_R, -FILLET1_R * 0.02))
            Line((FILLET1_R, -FILLET1_R * 0.02), (FILLET1_R, 0))
        make_face()
    extrude(amount=45, mode=Mode.SUBTRACT)


solid = part.part
